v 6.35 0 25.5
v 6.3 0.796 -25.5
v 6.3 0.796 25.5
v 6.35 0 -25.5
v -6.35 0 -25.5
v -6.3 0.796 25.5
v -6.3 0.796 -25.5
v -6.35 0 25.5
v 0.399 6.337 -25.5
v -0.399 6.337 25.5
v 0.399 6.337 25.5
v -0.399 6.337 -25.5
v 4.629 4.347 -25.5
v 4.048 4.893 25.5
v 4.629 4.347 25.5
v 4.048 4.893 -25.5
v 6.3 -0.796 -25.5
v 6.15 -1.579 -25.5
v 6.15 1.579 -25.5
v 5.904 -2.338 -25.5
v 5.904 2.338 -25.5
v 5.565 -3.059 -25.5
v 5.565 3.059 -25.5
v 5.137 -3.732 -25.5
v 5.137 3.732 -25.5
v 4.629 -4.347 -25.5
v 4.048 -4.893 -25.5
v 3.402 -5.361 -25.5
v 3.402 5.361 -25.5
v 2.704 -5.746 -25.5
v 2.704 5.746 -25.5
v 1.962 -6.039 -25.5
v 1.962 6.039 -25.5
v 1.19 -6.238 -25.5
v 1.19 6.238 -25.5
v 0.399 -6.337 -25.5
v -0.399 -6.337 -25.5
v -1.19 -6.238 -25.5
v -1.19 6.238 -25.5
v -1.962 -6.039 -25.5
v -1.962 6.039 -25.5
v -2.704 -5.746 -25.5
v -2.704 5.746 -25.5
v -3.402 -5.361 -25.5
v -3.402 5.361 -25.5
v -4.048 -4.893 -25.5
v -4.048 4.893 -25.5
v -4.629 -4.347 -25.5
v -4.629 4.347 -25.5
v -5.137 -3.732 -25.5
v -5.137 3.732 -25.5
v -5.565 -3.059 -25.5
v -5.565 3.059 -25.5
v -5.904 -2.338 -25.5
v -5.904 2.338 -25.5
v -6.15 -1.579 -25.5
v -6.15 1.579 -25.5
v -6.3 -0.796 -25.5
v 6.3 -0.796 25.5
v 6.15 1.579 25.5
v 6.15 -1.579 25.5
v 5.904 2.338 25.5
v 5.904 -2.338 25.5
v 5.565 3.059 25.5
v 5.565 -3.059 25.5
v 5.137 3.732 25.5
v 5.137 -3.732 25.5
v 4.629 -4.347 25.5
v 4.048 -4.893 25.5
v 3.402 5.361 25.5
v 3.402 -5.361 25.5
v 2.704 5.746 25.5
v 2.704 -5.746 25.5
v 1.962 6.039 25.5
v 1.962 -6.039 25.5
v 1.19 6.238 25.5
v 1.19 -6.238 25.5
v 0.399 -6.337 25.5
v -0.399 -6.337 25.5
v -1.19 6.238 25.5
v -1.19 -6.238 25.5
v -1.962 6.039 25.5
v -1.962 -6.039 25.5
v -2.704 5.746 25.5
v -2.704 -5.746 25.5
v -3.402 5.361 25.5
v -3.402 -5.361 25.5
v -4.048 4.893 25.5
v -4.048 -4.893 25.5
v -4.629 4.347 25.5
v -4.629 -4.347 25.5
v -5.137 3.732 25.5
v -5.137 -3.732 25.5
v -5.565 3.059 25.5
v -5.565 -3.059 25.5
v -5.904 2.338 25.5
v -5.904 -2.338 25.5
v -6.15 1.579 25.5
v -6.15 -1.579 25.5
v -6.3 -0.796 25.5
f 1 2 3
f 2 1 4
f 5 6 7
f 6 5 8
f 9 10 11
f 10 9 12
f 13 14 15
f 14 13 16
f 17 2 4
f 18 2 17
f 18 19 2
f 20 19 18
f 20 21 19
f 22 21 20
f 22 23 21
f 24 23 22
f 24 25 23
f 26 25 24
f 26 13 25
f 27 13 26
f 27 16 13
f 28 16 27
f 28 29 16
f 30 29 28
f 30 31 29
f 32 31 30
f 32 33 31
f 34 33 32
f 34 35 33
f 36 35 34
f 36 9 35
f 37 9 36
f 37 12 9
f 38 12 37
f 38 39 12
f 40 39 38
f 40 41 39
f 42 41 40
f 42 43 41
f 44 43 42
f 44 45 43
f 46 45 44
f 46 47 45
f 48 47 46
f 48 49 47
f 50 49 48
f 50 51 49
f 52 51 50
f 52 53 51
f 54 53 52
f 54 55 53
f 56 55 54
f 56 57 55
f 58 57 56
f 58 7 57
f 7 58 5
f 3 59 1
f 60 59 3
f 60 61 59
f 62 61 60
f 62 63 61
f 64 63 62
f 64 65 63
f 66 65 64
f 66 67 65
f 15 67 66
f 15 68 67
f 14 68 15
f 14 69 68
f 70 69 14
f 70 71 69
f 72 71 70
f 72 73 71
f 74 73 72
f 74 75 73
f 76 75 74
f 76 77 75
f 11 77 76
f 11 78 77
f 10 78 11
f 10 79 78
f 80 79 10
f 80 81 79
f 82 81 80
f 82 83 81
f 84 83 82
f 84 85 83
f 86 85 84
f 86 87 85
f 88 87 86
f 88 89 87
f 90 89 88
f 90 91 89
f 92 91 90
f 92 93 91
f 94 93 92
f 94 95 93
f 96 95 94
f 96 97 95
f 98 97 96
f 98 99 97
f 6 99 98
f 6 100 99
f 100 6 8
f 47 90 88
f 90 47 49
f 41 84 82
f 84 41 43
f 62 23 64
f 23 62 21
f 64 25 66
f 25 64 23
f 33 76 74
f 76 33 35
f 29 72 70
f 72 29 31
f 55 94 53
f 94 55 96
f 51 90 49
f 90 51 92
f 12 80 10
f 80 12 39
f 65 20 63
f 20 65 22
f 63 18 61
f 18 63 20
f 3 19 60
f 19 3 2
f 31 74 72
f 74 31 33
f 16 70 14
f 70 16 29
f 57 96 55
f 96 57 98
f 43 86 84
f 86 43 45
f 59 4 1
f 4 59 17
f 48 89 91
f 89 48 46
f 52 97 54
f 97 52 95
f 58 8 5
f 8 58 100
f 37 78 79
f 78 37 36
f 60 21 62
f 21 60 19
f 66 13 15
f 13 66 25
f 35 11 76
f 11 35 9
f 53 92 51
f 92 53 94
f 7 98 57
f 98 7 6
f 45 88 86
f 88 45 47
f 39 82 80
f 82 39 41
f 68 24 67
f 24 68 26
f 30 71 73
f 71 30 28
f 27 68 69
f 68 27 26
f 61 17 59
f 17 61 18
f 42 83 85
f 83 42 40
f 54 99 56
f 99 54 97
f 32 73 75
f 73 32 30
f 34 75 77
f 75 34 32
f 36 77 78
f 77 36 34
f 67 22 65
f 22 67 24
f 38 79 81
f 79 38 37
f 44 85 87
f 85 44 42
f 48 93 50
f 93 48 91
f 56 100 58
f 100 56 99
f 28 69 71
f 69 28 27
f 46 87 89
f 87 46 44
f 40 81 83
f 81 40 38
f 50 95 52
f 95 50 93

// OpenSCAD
$fn = 50;


difference() {
	union() {
		translate(v = [0, 0, -25.5000000000]) {
			cylinder(h = 51, r = 6.3500000000);
		}
	}
	union() {
		translate(v = [0, 0, -100.0000000000]) {
			cylinder(h = 200, r = 0);
		}
	}
}
